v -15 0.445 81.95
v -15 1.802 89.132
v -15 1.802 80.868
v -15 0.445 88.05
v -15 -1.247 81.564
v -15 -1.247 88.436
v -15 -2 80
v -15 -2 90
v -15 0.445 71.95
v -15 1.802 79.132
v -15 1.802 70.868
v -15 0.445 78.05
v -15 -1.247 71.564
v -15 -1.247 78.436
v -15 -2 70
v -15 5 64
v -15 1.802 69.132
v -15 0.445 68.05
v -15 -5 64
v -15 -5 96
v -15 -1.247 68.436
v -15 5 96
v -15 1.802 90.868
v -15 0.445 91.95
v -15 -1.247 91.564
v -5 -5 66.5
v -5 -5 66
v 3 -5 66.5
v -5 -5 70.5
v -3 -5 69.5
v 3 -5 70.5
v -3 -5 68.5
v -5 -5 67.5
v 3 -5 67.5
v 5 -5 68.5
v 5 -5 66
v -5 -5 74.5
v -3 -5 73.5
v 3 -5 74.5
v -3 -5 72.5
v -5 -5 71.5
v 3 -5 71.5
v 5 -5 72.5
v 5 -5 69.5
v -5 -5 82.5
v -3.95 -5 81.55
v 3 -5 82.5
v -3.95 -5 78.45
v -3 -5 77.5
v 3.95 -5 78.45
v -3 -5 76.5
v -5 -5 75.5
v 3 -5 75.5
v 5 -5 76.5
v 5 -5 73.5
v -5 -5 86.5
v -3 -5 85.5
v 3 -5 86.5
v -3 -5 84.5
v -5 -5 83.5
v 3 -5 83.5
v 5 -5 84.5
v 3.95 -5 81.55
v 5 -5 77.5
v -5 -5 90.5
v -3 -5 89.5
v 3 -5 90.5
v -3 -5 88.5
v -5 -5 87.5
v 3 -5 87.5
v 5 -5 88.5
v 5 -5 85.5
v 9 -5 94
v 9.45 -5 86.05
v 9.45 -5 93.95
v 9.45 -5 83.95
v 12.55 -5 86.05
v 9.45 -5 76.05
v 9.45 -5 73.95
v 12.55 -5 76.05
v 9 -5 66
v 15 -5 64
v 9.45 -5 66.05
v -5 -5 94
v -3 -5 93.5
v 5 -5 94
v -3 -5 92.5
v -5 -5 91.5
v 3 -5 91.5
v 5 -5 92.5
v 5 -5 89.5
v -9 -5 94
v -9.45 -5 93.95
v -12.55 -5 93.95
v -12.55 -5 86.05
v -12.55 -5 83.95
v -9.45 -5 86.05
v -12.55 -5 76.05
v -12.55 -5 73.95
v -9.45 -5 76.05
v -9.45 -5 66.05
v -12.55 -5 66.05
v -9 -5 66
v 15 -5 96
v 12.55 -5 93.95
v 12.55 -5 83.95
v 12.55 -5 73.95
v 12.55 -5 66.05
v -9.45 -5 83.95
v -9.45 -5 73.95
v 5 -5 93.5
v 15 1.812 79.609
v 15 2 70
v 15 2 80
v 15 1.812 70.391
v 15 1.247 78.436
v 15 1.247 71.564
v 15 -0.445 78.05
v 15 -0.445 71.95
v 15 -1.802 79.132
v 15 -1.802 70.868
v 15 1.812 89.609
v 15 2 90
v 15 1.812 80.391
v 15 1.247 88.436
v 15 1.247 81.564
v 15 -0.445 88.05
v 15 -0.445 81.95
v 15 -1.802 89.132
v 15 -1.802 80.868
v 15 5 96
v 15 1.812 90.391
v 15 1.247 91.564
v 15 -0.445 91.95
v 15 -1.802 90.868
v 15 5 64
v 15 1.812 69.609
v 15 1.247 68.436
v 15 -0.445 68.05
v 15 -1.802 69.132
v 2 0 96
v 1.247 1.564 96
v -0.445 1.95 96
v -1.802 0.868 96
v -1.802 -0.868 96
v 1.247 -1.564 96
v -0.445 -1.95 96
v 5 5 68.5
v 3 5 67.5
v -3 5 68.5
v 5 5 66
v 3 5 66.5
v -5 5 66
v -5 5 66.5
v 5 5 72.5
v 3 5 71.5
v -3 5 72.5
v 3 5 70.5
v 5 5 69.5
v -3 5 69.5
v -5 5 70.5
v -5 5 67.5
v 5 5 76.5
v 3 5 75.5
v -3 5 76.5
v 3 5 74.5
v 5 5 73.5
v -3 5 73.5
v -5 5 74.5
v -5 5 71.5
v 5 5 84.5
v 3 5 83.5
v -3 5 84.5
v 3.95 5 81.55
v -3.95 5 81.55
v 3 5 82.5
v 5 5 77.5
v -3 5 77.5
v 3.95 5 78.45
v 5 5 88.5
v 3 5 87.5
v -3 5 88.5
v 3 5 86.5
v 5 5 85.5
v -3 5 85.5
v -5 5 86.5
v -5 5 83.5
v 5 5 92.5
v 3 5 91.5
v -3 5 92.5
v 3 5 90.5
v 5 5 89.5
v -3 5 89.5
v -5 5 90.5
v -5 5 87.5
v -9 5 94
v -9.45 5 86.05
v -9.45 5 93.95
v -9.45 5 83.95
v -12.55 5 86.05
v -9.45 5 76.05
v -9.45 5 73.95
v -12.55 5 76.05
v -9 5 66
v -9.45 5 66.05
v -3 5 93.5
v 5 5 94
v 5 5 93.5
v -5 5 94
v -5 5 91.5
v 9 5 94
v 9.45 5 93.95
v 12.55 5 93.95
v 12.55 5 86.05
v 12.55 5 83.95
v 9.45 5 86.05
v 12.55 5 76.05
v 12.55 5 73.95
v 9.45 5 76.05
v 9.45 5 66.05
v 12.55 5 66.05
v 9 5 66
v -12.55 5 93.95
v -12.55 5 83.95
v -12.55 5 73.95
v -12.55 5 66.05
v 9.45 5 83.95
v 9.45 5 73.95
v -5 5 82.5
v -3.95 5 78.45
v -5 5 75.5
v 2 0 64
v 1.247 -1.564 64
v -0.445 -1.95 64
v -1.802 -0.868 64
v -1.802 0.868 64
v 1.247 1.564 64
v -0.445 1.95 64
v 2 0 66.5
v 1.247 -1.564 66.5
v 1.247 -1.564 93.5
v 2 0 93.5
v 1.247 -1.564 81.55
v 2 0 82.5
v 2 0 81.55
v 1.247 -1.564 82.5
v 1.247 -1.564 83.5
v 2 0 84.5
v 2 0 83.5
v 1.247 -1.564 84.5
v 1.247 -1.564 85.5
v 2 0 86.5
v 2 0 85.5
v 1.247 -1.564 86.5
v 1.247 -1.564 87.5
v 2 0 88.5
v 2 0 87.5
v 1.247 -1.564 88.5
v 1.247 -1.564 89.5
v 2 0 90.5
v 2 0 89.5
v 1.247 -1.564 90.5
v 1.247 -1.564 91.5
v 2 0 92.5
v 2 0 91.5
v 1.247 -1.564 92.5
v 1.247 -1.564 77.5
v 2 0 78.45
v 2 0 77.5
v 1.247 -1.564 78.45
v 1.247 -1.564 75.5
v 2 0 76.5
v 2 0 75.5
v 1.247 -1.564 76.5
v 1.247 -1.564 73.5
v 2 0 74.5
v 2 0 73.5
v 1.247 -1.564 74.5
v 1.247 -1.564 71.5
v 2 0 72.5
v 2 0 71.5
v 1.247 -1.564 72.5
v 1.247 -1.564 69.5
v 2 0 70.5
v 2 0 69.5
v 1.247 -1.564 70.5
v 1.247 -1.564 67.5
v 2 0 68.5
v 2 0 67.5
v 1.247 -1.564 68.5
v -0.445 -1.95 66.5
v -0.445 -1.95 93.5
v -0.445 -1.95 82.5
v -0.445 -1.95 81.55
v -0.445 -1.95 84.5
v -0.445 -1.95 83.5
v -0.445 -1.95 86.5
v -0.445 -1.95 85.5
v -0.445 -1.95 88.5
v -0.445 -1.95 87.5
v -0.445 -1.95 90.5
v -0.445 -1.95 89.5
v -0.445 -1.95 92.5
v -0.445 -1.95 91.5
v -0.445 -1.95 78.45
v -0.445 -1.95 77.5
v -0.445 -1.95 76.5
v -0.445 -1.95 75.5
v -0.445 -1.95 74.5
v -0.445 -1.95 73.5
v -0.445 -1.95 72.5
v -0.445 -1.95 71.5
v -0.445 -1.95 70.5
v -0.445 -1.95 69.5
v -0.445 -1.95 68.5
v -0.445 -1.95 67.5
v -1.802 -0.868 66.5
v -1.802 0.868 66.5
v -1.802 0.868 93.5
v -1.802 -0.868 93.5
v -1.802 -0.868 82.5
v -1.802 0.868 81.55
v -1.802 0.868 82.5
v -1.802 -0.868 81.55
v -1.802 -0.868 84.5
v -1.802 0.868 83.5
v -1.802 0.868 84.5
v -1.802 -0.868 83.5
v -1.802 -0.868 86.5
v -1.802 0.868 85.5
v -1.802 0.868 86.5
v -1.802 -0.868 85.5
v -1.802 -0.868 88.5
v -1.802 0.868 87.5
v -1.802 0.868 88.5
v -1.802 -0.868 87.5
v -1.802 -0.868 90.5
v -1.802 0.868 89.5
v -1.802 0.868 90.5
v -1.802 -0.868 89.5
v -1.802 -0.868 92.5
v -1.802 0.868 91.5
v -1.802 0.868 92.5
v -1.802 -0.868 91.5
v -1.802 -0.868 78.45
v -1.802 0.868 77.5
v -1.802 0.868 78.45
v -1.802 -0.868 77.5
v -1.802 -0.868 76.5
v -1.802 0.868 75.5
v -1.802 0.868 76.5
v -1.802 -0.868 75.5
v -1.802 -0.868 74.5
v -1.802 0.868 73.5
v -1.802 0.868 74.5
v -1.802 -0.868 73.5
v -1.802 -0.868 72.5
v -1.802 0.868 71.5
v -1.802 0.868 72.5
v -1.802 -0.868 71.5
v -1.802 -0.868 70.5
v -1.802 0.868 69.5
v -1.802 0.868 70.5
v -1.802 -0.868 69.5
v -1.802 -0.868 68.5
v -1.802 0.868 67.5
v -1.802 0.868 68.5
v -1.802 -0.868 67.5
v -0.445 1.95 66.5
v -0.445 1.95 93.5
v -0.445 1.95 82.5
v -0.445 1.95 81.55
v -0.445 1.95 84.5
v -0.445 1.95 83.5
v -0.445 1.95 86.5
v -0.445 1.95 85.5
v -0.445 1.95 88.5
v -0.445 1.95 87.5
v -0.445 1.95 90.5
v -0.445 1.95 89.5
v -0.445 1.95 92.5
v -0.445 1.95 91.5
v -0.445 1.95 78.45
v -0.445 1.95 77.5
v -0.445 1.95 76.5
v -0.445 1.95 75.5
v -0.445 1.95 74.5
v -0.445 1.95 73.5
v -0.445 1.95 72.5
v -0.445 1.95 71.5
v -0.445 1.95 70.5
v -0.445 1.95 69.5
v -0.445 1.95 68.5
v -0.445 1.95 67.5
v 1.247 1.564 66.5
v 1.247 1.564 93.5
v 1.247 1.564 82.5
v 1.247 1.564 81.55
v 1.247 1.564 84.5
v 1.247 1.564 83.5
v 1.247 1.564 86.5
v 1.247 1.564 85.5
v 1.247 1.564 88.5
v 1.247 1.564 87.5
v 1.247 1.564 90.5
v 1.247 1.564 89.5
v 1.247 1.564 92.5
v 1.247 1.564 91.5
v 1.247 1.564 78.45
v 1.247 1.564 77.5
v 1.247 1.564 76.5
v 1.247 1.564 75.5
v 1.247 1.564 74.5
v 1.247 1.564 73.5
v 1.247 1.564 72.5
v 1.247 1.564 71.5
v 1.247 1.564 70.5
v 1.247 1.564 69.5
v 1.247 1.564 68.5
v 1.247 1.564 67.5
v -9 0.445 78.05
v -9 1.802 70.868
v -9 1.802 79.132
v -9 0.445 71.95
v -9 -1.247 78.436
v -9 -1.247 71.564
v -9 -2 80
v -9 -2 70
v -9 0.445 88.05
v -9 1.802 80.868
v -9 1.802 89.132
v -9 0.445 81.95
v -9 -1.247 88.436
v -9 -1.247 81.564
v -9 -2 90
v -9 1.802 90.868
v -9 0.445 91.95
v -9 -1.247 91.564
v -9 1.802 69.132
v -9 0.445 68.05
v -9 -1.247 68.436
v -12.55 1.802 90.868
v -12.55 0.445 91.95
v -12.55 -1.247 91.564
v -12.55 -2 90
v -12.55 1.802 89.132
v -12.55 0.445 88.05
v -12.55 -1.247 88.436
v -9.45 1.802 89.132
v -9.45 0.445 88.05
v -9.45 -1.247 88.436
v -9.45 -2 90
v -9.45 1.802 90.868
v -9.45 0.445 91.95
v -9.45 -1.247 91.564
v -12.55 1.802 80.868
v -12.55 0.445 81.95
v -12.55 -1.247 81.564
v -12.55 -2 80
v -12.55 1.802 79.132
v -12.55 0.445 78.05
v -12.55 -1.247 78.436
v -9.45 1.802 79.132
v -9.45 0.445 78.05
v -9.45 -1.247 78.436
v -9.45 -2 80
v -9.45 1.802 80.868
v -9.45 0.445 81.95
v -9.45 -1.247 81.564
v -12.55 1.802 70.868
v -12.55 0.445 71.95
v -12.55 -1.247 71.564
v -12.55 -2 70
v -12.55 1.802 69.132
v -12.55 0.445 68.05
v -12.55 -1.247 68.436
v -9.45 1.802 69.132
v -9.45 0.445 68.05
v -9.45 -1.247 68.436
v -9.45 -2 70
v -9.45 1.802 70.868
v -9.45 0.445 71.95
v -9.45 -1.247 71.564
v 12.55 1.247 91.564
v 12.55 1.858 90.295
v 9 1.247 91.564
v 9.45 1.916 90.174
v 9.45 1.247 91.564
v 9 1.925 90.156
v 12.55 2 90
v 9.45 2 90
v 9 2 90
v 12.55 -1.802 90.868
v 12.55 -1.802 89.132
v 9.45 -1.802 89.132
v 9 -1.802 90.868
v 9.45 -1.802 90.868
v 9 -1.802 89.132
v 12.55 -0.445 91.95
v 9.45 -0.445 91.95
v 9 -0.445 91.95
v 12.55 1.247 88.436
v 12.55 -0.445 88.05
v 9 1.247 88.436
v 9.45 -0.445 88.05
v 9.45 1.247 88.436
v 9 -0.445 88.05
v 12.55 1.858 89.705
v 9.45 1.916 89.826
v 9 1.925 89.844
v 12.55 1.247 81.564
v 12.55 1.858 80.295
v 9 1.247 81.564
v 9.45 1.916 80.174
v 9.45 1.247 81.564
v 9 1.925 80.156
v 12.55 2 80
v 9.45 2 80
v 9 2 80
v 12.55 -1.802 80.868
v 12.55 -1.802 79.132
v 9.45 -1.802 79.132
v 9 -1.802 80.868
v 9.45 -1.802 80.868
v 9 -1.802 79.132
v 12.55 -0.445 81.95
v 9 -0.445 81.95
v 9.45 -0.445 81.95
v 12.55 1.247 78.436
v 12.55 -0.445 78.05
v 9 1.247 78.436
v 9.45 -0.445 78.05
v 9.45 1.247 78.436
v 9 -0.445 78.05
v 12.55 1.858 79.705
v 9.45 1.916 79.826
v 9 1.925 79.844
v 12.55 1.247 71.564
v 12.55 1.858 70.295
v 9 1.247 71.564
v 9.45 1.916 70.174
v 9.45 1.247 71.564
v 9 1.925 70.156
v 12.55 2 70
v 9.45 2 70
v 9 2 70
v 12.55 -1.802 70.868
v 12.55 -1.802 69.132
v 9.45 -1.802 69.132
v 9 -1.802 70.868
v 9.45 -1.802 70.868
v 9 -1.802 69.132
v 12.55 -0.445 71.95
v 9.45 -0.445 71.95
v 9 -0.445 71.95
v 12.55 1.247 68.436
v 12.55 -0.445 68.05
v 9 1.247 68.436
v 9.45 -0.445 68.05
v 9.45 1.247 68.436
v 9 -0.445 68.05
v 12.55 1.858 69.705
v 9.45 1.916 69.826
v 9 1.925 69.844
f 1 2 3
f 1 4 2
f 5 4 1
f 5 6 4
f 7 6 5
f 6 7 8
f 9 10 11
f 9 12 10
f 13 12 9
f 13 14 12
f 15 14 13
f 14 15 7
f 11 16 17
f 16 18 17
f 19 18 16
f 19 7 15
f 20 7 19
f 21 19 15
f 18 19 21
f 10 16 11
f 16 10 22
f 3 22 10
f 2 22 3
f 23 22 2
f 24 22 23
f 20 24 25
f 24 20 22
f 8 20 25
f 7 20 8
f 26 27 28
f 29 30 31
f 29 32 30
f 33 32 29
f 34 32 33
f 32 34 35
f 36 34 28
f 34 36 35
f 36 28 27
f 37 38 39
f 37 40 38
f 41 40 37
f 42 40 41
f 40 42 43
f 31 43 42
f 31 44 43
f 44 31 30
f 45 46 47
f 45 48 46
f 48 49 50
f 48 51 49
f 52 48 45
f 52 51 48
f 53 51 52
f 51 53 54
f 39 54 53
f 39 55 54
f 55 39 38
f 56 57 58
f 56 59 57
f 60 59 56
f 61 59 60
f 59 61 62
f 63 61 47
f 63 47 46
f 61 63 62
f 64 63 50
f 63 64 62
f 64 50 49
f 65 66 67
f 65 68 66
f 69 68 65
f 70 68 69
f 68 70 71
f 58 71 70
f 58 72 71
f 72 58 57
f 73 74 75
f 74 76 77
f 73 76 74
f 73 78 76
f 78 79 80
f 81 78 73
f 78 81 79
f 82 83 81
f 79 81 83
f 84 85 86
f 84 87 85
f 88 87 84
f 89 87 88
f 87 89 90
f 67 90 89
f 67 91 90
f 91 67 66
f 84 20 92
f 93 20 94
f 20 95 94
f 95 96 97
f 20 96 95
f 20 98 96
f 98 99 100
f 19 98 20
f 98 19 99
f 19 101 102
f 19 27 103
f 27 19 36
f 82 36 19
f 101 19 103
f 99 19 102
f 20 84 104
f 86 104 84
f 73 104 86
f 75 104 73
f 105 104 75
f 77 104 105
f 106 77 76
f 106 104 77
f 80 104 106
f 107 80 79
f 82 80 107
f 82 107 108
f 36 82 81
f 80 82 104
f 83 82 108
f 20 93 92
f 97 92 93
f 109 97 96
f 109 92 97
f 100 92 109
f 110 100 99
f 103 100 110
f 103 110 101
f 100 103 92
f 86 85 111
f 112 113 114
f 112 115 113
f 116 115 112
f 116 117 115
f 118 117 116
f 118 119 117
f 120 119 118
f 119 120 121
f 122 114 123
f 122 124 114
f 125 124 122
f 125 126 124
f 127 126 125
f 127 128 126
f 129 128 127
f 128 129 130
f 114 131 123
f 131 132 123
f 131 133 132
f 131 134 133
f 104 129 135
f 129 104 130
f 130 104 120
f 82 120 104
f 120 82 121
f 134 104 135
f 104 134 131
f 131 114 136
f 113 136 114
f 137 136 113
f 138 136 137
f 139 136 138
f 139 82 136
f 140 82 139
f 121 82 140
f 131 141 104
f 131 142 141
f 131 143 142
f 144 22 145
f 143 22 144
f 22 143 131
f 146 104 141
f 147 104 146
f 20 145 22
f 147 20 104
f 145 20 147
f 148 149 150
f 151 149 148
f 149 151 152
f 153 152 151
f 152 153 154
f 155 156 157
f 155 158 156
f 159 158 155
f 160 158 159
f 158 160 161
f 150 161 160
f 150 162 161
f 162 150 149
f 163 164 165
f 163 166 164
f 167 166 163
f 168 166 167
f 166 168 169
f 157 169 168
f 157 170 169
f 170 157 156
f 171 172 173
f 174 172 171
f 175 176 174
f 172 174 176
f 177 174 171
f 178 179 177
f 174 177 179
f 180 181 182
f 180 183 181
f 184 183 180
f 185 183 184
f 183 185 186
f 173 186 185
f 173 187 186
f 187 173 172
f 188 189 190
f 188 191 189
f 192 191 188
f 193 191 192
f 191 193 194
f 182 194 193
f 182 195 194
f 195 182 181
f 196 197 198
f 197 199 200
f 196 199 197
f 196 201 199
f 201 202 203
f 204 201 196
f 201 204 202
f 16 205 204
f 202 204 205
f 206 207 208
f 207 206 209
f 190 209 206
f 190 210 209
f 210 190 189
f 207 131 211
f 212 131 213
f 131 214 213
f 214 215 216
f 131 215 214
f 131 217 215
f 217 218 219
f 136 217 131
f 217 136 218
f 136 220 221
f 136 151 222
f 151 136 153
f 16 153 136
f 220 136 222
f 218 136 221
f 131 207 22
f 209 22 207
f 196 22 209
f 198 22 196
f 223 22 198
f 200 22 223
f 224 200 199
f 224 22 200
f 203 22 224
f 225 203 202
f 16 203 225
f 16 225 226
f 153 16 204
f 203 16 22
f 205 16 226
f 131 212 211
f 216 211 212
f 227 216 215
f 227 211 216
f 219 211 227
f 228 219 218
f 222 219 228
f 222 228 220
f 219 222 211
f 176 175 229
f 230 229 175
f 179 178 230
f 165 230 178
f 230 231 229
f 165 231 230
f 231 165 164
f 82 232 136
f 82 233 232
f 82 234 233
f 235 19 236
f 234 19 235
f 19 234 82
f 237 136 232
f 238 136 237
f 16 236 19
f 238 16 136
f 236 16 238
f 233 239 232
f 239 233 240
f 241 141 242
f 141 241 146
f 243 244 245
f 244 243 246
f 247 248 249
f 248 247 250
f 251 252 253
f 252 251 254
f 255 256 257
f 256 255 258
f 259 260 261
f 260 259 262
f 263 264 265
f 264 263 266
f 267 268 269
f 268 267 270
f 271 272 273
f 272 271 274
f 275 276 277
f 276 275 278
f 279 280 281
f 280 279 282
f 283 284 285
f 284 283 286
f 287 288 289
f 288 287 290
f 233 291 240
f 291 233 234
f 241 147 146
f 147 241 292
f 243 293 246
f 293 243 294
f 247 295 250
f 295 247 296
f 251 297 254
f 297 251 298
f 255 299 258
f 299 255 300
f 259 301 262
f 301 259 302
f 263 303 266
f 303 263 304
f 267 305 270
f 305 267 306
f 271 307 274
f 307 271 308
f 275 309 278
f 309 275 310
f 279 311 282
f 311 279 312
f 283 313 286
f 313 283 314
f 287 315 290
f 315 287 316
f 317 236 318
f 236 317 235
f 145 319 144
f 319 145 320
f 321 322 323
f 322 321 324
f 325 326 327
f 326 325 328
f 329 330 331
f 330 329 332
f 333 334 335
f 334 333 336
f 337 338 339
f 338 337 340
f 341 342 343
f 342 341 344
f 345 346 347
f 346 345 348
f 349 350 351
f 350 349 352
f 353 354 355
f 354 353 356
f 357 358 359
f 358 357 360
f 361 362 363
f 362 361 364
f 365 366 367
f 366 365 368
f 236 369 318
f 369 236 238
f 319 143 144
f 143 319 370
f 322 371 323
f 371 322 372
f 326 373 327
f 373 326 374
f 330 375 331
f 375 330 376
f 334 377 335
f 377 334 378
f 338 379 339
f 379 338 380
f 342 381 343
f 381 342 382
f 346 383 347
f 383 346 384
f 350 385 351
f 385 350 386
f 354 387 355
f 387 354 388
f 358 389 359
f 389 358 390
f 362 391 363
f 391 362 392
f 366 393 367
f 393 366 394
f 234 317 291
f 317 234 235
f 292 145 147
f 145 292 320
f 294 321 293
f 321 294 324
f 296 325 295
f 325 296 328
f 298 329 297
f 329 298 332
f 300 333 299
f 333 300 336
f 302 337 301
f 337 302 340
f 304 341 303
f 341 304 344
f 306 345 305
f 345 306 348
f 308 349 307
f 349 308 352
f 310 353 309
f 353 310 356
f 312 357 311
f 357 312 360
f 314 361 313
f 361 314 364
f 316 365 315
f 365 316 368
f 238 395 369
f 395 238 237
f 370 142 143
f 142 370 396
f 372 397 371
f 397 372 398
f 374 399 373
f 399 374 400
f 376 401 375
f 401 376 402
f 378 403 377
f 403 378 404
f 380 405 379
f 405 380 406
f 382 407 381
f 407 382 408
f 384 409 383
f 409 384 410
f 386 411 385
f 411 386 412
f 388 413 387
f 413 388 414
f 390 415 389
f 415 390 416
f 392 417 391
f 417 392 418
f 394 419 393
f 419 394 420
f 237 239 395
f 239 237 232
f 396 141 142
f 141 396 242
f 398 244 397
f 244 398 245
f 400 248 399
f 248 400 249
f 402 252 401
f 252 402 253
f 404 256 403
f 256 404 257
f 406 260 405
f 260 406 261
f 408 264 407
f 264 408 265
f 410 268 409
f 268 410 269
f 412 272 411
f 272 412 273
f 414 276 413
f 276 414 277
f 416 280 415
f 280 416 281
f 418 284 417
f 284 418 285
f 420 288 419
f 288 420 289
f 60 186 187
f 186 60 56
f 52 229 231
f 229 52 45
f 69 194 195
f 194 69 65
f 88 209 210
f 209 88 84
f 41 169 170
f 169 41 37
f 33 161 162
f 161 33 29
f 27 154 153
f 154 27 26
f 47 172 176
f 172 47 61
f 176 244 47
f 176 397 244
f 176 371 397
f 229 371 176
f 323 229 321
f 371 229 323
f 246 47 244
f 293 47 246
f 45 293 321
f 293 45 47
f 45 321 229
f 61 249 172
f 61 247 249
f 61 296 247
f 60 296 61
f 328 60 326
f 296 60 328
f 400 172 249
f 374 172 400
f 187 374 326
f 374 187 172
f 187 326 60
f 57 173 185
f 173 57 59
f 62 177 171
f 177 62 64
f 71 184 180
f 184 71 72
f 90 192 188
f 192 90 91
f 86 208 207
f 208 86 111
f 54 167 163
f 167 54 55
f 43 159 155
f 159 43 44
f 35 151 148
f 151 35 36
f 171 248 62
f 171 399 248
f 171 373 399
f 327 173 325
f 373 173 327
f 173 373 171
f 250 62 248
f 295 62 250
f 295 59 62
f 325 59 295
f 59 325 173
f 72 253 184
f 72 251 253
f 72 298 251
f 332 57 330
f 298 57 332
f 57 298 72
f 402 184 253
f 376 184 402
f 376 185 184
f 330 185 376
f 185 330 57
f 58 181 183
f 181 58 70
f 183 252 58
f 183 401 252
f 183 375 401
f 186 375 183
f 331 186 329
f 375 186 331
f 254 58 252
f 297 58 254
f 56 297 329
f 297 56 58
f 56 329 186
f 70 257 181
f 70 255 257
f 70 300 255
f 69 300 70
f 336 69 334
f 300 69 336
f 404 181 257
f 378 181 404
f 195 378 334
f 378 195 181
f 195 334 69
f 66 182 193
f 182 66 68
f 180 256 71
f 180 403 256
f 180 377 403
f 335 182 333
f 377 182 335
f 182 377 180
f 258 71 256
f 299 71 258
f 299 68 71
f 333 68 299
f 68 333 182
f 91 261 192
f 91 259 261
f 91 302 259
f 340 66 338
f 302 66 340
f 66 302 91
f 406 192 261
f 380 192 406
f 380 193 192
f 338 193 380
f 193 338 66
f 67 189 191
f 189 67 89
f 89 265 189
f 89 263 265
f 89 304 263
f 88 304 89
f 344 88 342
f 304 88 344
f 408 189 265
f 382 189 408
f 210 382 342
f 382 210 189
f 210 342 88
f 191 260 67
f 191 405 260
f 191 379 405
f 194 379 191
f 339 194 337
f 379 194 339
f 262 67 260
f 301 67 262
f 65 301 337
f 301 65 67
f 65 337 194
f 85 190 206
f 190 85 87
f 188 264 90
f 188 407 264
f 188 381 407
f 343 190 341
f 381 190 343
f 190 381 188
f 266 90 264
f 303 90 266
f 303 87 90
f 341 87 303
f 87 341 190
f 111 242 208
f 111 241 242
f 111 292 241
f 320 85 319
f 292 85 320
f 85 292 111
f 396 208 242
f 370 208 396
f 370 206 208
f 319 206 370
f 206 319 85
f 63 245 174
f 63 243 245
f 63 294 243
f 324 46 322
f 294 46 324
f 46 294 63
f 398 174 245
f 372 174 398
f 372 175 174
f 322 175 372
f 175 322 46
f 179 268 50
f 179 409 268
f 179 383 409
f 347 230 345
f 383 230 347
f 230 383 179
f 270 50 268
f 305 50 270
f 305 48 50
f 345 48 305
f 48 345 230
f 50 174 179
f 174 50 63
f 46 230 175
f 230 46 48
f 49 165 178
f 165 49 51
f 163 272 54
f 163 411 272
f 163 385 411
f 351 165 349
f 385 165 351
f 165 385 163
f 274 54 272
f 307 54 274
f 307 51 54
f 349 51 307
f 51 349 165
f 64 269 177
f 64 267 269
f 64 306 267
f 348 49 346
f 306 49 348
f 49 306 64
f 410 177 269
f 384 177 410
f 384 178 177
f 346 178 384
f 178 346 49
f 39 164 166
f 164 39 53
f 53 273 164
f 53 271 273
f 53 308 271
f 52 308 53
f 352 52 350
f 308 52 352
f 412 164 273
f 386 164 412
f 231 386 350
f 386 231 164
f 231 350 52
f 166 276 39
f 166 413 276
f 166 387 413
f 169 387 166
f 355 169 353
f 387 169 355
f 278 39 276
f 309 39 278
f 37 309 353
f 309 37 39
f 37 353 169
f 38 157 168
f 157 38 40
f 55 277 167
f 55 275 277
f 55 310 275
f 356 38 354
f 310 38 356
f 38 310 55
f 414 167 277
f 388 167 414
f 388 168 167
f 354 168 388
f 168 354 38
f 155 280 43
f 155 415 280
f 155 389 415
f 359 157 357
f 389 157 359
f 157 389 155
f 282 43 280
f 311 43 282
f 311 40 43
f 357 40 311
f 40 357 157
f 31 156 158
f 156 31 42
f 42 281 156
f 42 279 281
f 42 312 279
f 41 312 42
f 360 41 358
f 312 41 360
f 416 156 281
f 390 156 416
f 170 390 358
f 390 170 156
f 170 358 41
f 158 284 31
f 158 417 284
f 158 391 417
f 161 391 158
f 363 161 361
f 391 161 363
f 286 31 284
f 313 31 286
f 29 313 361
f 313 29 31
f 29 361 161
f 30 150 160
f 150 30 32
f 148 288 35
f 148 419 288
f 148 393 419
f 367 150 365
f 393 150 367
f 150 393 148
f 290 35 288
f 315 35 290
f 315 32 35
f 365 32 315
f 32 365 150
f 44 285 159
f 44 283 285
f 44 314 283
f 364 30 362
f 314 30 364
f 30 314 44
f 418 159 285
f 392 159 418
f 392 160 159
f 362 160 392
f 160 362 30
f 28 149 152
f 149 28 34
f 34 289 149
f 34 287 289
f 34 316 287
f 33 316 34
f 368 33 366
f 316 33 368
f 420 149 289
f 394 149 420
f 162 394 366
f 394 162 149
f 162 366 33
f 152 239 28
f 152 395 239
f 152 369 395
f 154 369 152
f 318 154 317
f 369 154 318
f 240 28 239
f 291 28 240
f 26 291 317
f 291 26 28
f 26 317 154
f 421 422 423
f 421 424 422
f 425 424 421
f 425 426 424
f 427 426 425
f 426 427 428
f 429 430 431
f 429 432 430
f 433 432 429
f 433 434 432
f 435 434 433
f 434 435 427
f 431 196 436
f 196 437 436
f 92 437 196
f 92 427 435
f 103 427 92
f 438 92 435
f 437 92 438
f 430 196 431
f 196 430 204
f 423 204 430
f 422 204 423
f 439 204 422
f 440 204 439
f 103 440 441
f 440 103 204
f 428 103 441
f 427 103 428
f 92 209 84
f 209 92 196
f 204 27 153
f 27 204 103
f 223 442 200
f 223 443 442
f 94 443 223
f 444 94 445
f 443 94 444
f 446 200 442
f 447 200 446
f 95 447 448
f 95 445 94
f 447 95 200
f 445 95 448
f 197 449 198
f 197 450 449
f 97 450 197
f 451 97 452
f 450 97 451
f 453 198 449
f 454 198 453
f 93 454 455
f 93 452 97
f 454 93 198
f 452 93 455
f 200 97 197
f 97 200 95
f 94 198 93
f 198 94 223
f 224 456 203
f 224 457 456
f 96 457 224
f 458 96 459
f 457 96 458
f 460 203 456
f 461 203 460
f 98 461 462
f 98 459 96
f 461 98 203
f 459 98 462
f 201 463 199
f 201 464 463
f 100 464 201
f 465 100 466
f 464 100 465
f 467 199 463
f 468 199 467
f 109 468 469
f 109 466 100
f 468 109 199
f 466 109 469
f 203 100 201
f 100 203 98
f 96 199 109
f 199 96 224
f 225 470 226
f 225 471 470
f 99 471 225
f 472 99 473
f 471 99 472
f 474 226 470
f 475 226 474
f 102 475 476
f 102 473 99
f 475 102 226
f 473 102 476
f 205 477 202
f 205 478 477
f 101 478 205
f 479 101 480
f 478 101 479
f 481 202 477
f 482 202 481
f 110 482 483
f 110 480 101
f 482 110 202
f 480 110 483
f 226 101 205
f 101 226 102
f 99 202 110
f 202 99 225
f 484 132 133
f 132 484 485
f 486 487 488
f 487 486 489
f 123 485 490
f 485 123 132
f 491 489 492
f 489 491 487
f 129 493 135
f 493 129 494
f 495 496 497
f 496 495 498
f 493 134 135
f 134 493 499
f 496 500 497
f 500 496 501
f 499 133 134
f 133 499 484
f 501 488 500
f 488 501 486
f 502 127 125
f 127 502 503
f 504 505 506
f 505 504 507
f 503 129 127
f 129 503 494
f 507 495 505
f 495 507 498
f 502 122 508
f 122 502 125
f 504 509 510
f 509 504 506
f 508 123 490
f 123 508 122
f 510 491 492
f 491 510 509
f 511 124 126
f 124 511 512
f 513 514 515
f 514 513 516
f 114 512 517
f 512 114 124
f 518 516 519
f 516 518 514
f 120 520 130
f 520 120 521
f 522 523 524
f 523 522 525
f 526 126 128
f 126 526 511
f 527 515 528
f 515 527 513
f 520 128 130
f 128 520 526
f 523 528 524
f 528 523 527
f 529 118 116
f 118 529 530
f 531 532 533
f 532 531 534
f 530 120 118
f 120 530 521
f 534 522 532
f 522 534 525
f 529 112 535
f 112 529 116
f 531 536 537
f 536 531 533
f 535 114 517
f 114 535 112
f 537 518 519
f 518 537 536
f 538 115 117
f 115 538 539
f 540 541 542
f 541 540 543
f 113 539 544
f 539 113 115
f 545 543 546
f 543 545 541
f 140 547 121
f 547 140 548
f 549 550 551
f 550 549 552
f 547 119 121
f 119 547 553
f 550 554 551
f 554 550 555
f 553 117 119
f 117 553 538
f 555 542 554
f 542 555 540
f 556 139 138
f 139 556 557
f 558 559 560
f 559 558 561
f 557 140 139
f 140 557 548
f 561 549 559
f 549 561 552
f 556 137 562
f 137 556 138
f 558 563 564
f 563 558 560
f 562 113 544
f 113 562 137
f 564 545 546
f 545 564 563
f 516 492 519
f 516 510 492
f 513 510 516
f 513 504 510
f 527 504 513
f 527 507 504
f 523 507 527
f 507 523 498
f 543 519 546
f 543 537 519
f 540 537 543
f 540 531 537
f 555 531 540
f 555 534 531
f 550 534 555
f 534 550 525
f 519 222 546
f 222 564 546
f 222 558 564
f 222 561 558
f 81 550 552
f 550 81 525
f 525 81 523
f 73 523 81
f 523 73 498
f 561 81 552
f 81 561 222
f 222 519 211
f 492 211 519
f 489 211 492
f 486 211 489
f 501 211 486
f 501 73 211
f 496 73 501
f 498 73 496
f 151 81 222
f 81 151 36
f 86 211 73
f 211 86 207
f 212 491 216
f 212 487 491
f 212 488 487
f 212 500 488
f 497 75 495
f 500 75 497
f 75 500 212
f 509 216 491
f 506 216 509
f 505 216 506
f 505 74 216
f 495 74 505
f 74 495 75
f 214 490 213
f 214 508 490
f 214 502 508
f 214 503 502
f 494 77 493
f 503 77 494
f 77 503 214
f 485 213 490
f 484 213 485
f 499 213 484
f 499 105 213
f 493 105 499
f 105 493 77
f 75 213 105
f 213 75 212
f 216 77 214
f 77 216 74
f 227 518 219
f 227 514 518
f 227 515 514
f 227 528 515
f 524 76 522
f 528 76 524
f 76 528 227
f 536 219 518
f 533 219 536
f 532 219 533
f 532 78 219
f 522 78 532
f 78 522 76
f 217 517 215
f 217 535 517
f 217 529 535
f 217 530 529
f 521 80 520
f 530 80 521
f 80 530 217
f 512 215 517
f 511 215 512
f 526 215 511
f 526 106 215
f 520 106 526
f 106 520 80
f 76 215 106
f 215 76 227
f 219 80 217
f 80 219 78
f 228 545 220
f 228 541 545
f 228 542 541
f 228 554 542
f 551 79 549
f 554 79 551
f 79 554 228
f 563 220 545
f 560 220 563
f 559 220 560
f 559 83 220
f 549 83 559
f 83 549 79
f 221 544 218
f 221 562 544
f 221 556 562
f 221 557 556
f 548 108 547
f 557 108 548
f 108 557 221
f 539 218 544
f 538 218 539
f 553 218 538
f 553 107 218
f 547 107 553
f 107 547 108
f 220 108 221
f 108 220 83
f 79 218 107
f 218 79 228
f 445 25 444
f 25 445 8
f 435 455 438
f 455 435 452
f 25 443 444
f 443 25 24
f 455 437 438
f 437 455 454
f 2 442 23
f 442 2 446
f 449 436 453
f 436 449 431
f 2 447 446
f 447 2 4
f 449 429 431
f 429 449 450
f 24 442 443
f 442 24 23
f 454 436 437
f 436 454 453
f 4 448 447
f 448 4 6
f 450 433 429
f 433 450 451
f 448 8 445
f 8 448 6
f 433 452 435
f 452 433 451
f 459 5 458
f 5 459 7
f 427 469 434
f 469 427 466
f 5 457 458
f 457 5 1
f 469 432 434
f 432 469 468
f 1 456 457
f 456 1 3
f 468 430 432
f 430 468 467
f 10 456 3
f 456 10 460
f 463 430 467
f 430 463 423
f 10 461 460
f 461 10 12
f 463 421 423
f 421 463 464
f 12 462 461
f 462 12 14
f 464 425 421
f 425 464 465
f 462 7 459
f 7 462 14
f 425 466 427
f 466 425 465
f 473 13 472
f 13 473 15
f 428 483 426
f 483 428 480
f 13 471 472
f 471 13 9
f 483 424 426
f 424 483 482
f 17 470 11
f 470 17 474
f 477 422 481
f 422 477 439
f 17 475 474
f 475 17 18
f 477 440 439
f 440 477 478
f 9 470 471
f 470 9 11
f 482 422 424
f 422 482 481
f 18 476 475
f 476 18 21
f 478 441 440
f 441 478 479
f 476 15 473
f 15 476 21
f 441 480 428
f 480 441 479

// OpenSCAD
union() {
	rotate(a = 90, v = [1, 0, 0]) {
		translate(v = [0, 80, 0]) {
			color(c = [0.8000000000, 0, 0.8000000000]) {
				difference() {
					cube(center = true, size = [30, 32, 10]);
					translate(v = [0, 20, 0]) {
						rotate(a = 90, v = [1, 0, 0]) {
							cylinder(h = 40, r = 2);
						}
					}
					translate(v = [-1, 3, 0]) {
						rotate(a = 0, v = [0, 0, 1]) {
							cube(center = true, size = [8, 1, 12]);
						}
					}
					translate(v = [1, 5, 0]) {
						rotate(a = 0, v = [0, 0, 1]) {
							cube(center = true, size = [8, 1, 12]);
						}
					}
					translate(v = [-1, 7, 0]) {
						rotate(a = 0, v = [0, 0, 1]) {
							cube(center = true, size = [8, 1, 12]);
						}
					}
					translate(v = [1, 9, 0]) {
						rotate(a = 0, v = [0, 0, 1]) {
							cube(center = true, size = [8, 1, 12]);
						}
					}
					translate(v = [-1, 11, 0]) {
						rotate(a = 0, v = [0, 0, 1]) {
							cube(center = true, size = [8, 1, 12]);
						}
					}
					translate(v = [1, 13, 0]) {
						rotate(a = 0, v = [0, 0, 1]) {
							cube(center = true, size = [8, 1, 12]);
						}
					}
					translate(v = [0, 0, 0]) {
						rotate(a = 90, v = [0, 0, 1]) {
							cube(center = true, size = [3.1000000000, 7.9000000000, 12]);
						}
					}
					translate(v = [1, -3, 0]) {
						rotate(a = 0, v = [0, 0, 1]) {
							cube(center = true, size = [8, 1, 12]);
						}
					}
					translate(v = [-1, -5, 0]) {
						rotate(a = 0, v = [0, 0, 1]) {
							cube(center = true, size = [8, 1, 12]);
						}
					}
					translate(v = [1, -7, 0]) {
						rotate(a = 0, v = [0, 0, 1]) {
							cube(center = true, size = [8, 1, 12]);
						}
					}
					translate(v = [-1, -9, 0]) {
						rotate(a = 0, v = [0, 0, 1]) {
							cube(center = true, size = [8, 1, 12]);
						}
					}
					translate(v = [1, -11, 0]) {
						rotate(a = 0, v = [0, 0, 1]) {
							cube(center = true, size = [8, 1, 12]);
						}
					}
					translate(v = [-1, -13, 0]) {
						rotate(a = 0, v = [0, 0, 1]) {
							cube(center = true, size = [8, 1, 12]);
						}
					}
					translate(v = [-7, 0, 0]) {
						rotate(a = 0, v = [0, 0, 1]) {
							cube(center = true, size = [4, 28, 12]);
						}
					}
					translate(v = [-11, 10, 0]) {
						rotate(a = 0, v = [1, 0, 0]) {
							cube(center = true, size = [3.1000000000, 7.9000000000, 12]);
						}
					}
					translate(v = [-11, 0, 0]) {
						rotate(a = 0, v = [1, 0, 0]) {
							cube(center = true, size = [3.1000000000, 7.9000000000, 12]);
						}
					}
					translate(v = [-11, -10, 0]) {
						rotate(a = 0, v = [1, 0, 0]) {
							cube(center = true, size = [3.1000000000, 7.9000000000, 12]);
						}
					}
					translate(v = [5, 10, 0]) {
						rotate(a = 90, v = [0, 1, 0]) {
							cylinder(h = 40, r = 2);
						}
					}
					translate(v = [5, 0, 0]) {
						rotate(a = 90, v = [0, 1, 0]) {
							cylinder(h = 40, r = 2);
						}
					}
					translate(v = [5, -10, 0]) {
						rotate(a = 90, v = [0, 1, 0]) {
							cylinder(h = 40, r = 2);
						}
					}
					translate(v = [7, 0, 0]) {
						rotate(a = 0, v = [0, 0, 1]) {
							cube(center = true, size = [4, 28, 12]);
						}
					}
					translate(v = [11, 10, 0]) {
						rotate(a = 0, v = [1, 0, 0]) {
							cube(center = true, size = [3.1000000000, 7.9000000000, 12]);
						}
					}
					translate(v = [11, 0, 0]) {
						rotate(a = 0, v = [1, 0, 0]) {
							cube(center = true, size = [3.1000000000, 7.9000000000, 12]);
						}
					}
					translate(v = [11, -10, 0]) {
						rotate(a = 0, v = [1, 0, 0]) {
							cube(center = true, size = [3.1000000000, 7.9000000000, 12]);
						}
					}
					translate(v = [-5, 10, 0]) {
						rotate(a = 90, v = [0, -1, 0]) {
							cylinder(h = 40, r = 2);
						}
					}
					translate(v = [-5, 0, 0]) {
						rotate(a = 90, v = [0, -1, 0]) {
							cylinder(h = 40, r = 2);
						}
					}
					translate(v = [-5, -10, 0]) {
						rotate(a = 90, v = [0, -1, 0]) {
							cylinder(h = 40, r = 2);
						}
					}
				}
			}
		}
	}
}
/***********************************************
*********      SolidPython code:      **********
************************************************
 
#! /usr/bin/env python
# -*- coding: utf-8 -*-

# Basic shape with several repeated parts, demonstrating the use of
# solid.utils.bill_of_materials()
#
# Basically:
#   -- Define every part you want in the Bill of Materials in a function
#   -- Use the 'bom_part' decorator ahead of the definition of each part's function
#           e.g.:
# @bom_part()
# def my_part():
#     pass
#   -- Optionally, you can add a description and a per-unit cost to the
#       decorator invocations.
#
#   -- To generate the bill of materials, call solid.utils.bill_of_materials()
#
#       -ETJ 08 Mar 2011

import os
import sys
import pygame

from solid import *
from solid.utils import *  # Not required, but the utils module is useful
from partList import *

def assemble():
	return union()(
		(rotate(90,[1,0,0])(translate([0,80,0])(printedSpring()))),
#		ESC40W(),
#		translate([0,0, 20])(A2212()),
#		(rotate(90,[0,0,1]))(rotate(90,[1,0,0])(translate([0,80,-15])(SEAbracketSide()))),
#		(rotate(90,[0,0,1]))(rotate(90,[-1,0,0])(translate([0,-80,-15])(SEAbracketSide()))),
#		translate([0,0, 22])(ShaftAdapter3_17to4mm()),
#		translate([0,0,24])(screwRodm4(200)),
#		(translate([0,0, 140])(SEAtopCap())),
#		translate([0,0, -10])(A2212Attachment()),
#		translate([-15,10,0])(linearRod4mm()),
#		translate([-15,-10,65])(linearRod4mm()),
#		translate([15,10,65])(linearRod4mm()),
#		translate([15,-10,0])(linearRod4mm()),
	)

if __name__ == '__main__':
	out_dir = sys.argv[1] if len(sys.argv) > 1 else os.curdir
	file_out = os.path.join(out_dir, 'SEA.scad')
	a = assemble()
	bom = bill_of_materials()
	print("%(__file__)s: SCAD file written to: \n%(file_out)s" % vars())
	print(bom)
	scad_render_to_file(a, file_out) 
 
************************************************/
